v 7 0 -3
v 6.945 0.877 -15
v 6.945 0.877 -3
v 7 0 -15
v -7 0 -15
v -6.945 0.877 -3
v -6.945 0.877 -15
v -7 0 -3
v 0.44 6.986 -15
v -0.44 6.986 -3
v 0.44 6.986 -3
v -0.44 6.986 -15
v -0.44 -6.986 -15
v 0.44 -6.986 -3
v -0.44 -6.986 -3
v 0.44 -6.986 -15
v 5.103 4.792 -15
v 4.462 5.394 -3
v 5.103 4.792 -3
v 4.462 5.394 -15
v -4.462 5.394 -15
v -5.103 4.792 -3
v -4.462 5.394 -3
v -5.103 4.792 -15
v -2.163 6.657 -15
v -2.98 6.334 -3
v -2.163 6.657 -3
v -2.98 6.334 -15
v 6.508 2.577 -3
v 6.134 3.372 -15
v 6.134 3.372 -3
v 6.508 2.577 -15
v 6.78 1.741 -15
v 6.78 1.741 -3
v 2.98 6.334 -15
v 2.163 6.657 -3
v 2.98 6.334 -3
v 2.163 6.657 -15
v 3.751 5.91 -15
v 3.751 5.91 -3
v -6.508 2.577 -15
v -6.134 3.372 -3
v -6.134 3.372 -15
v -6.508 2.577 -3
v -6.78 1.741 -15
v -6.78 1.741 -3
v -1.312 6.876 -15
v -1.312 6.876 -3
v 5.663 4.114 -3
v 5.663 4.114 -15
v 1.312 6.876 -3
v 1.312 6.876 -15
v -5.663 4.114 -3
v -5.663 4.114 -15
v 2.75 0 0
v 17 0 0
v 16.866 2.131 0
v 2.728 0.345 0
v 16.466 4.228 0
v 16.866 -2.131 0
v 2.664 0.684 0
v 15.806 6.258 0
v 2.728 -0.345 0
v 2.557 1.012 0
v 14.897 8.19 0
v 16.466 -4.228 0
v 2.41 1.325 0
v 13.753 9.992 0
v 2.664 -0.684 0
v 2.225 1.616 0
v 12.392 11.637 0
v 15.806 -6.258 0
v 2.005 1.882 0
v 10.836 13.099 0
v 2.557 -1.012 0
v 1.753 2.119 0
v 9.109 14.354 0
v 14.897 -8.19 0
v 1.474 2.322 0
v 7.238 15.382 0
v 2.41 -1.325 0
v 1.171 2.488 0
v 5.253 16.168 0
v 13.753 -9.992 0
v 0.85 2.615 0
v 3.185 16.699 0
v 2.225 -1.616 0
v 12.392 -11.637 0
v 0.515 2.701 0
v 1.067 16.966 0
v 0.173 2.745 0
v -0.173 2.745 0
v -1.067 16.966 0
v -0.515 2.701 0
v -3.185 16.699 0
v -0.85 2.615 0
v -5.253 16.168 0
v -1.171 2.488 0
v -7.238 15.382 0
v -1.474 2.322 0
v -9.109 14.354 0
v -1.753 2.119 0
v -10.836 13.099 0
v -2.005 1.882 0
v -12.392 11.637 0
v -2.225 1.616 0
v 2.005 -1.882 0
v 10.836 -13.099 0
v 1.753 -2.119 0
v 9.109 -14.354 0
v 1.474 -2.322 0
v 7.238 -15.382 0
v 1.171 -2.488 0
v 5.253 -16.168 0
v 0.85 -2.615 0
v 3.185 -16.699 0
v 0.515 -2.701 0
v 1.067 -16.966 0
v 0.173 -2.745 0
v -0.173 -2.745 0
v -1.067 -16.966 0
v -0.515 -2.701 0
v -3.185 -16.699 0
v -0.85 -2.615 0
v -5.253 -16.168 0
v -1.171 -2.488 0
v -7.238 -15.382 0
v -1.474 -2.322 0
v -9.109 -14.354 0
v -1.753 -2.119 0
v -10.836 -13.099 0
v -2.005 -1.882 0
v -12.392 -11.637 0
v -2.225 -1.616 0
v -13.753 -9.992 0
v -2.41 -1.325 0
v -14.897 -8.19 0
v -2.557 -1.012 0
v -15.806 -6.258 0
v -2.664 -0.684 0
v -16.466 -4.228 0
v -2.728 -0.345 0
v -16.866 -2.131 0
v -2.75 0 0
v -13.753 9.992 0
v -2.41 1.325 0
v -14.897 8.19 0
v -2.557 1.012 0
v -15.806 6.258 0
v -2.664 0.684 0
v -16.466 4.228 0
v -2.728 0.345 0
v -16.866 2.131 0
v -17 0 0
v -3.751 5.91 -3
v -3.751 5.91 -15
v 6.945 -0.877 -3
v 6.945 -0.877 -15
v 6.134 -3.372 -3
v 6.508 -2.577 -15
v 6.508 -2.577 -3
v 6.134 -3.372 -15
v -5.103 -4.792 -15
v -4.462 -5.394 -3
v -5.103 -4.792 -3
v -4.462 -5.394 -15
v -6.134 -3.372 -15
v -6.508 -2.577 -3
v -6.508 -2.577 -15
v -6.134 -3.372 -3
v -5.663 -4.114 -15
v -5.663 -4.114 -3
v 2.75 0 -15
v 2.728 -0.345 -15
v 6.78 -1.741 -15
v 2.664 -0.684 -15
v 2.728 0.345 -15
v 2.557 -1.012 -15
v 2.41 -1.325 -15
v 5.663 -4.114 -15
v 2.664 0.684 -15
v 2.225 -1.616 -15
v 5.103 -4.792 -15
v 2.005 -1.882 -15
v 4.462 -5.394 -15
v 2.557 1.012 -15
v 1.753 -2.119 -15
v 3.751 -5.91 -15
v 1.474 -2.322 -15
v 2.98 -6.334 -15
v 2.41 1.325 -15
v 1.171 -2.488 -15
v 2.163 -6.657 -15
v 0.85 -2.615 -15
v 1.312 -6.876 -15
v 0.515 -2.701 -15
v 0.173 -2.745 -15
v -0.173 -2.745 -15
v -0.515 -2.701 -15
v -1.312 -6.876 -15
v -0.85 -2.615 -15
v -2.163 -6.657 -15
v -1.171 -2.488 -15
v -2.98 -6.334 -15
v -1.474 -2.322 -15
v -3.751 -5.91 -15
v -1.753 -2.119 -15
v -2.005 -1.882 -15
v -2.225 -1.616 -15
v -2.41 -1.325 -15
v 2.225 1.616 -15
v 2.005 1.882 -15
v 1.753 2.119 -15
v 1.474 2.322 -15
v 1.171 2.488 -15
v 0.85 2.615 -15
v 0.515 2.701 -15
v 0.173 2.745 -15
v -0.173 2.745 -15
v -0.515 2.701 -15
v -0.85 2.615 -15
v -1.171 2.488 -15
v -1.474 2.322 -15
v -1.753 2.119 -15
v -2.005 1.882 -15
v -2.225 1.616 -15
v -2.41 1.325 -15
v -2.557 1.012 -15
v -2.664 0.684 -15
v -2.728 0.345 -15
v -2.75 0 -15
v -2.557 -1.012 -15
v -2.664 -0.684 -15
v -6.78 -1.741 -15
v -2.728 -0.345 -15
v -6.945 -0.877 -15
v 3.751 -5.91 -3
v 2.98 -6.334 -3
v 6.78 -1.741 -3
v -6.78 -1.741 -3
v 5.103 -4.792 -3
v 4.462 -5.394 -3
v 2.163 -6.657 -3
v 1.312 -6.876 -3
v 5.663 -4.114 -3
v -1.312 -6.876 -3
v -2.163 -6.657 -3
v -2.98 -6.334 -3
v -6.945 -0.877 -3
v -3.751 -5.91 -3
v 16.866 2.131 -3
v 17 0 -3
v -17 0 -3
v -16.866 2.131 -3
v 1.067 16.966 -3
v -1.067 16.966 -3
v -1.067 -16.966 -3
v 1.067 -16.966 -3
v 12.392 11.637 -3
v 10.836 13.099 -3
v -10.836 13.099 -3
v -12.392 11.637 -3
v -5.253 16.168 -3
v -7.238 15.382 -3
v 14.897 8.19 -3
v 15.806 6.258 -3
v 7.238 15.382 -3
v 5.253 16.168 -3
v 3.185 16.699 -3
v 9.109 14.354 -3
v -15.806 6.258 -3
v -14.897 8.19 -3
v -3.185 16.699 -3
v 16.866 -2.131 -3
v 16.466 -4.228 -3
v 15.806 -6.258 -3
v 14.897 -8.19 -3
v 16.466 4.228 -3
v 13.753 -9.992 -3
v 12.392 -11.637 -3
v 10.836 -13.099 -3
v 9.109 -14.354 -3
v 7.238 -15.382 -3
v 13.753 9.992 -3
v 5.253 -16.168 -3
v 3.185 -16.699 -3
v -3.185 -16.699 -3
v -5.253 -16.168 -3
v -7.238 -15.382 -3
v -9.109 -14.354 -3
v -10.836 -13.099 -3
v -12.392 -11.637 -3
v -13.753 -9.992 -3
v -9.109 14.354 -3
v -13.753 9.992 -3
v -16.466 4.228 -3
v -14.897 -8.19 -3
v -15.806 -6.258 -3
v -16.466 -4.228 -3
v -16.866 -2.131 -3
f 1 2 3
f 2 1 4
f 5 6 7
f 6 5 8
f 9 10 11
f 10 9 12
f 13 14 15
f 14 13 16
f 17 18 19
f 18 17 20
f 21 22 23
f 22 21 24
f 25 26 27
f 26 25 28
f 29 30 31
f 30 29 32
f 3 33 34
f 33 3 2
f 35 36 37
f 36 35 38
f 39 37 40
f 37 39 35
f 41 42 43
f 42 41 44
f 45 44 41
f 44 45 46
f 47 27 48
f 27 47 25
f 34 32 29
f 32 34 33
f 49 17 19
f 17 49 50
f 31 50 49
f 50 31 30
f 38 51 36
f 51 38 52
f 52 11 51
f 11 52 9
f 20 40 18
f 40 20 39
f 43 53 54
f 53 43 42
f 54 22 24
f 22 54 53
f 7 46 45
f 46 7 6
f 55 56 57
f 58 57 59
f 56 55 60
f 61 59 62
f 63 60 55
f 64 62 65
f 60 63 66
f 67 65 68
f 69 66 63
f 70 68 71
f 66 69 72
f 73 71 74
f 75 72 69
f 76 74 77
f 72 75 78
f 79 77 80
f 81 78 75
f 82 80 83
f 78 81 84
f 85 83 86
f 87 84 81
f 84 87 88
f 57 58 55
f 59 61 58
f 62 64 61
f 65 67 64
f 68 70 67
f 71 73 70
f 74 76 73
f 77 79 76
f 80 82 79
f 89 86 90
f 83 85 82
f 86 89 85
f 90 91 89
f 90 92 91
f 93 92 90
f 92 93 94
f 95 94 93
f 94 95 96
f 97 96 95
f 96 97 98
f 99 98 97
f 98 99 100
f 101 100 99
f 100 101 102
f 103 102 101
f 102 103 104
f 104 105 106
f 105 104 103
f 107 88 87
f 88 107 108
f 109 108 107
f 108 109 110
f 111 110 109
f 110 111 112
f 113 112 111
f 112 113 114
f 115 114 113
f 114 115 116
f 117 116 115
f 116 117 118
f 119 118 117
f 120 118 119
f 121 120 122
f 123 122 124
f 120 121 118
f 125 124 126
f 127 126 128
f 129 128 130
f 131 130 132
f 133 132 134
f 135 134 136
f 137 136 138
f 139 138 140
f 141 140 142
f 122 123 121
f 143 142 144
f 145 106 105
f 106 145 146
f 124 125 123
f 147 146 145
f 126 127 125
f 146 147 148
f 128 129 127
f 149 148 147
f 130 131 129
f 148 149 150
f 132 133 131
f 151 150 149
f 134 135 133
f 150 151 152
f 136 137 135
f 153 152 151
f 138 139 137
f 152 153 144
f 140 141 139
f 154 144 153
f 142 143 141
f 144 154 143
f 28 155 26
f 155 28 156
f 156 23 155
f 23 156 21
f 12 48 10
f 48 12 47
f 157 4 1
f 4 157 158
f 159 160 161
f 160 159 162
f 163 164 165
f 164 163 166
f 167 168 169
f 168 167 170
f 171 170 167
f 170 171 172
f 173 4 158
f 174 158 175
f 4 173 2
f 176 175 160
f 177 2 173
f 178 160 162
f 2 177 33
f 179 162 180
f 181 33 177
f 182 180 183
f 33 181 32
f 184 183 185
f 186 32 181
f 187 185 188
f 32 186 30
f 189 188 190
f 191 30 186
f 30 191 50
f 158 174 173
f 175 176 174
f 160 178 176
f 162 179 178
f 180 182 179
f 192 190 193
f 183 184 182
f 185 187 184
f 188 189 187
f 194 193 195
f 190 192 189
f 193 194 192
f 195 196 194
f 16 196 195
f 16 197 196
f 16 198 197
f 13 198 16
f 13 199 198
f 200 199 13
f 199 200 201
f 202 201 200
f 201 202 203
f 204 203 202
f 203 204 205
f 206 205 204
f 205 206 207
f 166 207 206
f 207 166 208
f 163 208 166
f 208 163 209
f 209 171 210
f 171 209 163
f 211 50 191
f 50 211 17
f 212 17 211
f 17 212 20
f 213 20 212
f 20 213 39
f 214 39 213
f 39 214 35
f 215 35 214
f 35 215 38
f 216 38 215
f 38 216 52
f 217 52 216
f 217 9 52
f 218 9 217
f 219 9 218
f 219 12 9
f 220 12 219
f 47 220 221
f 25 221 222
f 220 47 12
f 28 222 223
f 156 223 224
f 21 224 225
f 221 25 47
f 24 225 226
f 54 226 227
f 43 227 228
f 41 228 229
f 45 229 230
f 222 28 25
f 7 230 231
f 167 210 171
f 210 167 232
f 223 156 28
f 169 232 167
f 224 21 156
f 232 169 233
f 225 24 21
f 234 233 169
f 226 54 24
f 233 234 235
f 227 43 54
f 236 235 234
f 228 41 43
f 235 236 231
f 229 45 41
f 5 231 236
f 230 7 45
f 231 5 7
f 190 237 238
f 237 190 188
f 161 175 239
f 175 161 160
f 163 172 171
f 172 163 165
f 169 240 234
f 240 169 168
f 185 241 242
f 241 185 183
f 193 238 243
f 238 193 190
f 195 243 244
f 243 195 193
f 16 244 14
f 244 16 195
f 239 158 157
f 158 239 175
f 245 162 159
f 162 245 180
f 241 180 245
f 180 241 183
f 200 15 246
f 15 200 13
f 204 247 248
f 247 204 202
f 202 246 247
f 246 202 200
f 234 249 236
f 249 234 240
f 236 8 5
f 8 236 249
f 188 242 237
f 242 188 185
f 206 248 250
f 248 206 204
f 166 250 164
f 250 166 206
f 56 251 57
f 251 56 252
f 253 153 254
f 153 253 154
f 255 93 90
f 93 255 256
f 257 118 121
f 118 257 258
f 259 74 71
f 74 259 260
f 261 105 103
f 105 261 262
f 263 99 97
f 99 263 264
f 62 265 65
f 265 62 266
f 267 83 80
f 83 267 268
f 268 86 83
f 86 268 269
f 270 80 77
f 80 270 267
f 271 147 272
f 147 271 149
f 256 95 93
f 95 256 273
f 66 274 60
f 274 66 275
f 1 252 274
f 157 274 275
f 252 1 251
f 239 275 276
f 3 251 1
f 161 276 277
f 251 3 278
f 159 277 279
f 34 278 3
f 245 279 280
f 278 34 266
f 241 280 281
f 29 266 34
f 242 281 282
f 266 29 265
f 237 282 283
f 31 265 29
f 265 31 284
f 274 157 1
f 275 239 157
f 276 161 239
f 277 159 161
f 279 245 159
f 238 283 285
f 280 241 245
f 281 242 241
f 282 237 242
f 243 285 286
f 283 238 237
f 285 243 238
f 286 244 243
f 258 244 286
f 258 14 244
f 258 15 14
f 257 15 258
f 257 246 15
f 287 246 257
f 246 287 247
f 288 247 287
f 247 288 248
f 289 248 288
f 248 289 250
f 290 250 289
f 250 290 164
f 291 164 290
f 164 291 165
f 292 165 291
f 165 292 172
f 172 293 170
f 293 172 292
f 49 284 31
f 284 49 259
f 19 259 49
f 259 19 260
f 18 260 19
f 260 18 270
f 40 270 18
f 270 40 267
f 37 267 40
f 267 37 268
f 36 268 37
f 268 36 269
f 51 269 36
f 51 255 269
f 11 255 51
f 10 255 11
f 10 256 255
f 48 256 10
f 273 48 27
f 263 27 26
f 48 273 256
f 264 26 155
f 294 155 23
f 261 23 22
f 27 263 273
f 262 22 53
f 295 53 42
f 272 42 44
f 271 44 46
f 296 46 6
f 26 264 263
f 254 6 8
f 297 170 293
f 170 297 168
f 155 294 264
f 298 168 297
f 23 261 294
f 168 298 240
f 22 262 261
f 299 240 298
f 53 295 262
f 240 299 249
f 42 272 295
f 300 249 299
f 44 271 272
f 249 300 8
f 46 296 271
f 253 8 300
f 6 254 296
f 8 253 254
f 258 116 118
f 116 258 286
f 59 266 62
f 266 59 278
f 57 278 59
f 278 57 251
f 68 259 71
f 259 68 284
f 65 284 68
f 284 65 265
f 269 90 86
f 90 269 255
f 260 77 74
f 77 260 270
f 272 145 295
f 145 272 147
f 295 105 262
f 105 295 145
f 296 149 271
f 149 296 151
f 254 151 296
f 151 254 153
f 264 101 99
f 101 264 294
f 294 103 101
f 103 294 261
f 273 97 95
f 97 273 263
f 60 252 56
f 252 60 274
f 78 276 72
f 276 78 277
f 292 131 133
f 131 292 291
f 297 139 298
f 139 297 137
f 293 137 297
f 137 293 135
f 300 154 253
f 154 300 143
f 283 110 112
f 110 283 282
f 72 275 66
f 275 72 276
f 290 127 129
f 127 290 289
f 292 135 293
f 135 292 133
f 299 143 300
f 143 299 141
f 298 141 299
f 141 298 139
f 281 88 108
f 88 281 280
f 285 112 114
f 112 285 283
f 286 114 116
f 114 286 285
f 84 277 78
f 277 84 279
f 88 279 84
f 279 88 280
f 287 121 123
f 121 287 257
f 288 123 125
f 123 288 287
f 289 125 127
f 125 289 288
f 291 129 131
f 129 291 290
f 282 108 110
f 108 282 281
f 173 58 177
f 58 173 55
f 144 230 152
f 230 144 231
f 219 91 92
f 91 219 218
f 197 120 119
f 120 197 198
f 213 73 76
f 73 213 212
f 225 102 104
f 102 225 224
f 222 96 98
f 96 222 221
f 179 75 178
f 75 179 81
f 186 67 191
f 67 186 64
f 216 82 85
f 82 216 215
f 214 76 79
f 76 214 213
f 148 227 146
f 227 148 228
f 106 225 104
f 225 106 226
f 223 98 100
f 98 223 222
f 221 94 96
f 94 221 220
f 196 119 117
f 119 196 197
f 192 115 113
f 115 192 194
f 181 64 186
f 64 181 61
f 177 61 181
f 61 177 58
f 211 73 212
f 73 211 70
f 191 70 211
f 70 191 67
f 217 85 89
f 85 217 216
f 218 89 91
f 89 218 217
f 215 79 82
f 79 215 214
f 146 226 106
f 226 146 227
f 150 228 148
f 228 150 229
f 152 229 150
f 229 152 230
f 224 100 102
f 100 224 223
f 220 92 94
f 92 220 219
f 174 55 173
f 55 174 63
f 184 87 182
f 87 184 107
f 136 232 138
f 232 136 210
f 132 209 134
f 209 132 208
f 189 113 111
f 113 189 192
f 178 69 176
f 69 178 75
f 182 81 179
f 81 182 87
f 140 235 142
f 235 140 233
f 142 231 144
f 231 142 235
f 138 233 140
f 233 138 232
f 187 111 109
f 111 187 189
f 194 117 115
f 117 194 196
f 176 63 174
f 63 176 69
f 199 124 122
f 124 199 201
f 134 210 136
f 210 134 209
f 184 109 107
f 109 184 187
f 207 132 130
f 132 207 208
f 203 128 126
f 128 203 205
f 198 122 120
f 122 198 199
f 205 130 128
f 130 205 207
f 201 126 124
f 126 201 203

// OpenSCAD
$fn = 50;


difference() {
	union() {
		translate(v = [0, 0, -15.0000000000]) {
			cylinder(h = 15, r = 7.0000000000);
		}
		translate(v = [0, 0, -3.0000000000]) {
			cylinder(h = 3, r = 17.0000000000);
		}
	}
	union() {
		#translate(v = [0, 0, -15]) {
			cylinder(h = 15, r = 2.7500000000);
		}
	}
}
